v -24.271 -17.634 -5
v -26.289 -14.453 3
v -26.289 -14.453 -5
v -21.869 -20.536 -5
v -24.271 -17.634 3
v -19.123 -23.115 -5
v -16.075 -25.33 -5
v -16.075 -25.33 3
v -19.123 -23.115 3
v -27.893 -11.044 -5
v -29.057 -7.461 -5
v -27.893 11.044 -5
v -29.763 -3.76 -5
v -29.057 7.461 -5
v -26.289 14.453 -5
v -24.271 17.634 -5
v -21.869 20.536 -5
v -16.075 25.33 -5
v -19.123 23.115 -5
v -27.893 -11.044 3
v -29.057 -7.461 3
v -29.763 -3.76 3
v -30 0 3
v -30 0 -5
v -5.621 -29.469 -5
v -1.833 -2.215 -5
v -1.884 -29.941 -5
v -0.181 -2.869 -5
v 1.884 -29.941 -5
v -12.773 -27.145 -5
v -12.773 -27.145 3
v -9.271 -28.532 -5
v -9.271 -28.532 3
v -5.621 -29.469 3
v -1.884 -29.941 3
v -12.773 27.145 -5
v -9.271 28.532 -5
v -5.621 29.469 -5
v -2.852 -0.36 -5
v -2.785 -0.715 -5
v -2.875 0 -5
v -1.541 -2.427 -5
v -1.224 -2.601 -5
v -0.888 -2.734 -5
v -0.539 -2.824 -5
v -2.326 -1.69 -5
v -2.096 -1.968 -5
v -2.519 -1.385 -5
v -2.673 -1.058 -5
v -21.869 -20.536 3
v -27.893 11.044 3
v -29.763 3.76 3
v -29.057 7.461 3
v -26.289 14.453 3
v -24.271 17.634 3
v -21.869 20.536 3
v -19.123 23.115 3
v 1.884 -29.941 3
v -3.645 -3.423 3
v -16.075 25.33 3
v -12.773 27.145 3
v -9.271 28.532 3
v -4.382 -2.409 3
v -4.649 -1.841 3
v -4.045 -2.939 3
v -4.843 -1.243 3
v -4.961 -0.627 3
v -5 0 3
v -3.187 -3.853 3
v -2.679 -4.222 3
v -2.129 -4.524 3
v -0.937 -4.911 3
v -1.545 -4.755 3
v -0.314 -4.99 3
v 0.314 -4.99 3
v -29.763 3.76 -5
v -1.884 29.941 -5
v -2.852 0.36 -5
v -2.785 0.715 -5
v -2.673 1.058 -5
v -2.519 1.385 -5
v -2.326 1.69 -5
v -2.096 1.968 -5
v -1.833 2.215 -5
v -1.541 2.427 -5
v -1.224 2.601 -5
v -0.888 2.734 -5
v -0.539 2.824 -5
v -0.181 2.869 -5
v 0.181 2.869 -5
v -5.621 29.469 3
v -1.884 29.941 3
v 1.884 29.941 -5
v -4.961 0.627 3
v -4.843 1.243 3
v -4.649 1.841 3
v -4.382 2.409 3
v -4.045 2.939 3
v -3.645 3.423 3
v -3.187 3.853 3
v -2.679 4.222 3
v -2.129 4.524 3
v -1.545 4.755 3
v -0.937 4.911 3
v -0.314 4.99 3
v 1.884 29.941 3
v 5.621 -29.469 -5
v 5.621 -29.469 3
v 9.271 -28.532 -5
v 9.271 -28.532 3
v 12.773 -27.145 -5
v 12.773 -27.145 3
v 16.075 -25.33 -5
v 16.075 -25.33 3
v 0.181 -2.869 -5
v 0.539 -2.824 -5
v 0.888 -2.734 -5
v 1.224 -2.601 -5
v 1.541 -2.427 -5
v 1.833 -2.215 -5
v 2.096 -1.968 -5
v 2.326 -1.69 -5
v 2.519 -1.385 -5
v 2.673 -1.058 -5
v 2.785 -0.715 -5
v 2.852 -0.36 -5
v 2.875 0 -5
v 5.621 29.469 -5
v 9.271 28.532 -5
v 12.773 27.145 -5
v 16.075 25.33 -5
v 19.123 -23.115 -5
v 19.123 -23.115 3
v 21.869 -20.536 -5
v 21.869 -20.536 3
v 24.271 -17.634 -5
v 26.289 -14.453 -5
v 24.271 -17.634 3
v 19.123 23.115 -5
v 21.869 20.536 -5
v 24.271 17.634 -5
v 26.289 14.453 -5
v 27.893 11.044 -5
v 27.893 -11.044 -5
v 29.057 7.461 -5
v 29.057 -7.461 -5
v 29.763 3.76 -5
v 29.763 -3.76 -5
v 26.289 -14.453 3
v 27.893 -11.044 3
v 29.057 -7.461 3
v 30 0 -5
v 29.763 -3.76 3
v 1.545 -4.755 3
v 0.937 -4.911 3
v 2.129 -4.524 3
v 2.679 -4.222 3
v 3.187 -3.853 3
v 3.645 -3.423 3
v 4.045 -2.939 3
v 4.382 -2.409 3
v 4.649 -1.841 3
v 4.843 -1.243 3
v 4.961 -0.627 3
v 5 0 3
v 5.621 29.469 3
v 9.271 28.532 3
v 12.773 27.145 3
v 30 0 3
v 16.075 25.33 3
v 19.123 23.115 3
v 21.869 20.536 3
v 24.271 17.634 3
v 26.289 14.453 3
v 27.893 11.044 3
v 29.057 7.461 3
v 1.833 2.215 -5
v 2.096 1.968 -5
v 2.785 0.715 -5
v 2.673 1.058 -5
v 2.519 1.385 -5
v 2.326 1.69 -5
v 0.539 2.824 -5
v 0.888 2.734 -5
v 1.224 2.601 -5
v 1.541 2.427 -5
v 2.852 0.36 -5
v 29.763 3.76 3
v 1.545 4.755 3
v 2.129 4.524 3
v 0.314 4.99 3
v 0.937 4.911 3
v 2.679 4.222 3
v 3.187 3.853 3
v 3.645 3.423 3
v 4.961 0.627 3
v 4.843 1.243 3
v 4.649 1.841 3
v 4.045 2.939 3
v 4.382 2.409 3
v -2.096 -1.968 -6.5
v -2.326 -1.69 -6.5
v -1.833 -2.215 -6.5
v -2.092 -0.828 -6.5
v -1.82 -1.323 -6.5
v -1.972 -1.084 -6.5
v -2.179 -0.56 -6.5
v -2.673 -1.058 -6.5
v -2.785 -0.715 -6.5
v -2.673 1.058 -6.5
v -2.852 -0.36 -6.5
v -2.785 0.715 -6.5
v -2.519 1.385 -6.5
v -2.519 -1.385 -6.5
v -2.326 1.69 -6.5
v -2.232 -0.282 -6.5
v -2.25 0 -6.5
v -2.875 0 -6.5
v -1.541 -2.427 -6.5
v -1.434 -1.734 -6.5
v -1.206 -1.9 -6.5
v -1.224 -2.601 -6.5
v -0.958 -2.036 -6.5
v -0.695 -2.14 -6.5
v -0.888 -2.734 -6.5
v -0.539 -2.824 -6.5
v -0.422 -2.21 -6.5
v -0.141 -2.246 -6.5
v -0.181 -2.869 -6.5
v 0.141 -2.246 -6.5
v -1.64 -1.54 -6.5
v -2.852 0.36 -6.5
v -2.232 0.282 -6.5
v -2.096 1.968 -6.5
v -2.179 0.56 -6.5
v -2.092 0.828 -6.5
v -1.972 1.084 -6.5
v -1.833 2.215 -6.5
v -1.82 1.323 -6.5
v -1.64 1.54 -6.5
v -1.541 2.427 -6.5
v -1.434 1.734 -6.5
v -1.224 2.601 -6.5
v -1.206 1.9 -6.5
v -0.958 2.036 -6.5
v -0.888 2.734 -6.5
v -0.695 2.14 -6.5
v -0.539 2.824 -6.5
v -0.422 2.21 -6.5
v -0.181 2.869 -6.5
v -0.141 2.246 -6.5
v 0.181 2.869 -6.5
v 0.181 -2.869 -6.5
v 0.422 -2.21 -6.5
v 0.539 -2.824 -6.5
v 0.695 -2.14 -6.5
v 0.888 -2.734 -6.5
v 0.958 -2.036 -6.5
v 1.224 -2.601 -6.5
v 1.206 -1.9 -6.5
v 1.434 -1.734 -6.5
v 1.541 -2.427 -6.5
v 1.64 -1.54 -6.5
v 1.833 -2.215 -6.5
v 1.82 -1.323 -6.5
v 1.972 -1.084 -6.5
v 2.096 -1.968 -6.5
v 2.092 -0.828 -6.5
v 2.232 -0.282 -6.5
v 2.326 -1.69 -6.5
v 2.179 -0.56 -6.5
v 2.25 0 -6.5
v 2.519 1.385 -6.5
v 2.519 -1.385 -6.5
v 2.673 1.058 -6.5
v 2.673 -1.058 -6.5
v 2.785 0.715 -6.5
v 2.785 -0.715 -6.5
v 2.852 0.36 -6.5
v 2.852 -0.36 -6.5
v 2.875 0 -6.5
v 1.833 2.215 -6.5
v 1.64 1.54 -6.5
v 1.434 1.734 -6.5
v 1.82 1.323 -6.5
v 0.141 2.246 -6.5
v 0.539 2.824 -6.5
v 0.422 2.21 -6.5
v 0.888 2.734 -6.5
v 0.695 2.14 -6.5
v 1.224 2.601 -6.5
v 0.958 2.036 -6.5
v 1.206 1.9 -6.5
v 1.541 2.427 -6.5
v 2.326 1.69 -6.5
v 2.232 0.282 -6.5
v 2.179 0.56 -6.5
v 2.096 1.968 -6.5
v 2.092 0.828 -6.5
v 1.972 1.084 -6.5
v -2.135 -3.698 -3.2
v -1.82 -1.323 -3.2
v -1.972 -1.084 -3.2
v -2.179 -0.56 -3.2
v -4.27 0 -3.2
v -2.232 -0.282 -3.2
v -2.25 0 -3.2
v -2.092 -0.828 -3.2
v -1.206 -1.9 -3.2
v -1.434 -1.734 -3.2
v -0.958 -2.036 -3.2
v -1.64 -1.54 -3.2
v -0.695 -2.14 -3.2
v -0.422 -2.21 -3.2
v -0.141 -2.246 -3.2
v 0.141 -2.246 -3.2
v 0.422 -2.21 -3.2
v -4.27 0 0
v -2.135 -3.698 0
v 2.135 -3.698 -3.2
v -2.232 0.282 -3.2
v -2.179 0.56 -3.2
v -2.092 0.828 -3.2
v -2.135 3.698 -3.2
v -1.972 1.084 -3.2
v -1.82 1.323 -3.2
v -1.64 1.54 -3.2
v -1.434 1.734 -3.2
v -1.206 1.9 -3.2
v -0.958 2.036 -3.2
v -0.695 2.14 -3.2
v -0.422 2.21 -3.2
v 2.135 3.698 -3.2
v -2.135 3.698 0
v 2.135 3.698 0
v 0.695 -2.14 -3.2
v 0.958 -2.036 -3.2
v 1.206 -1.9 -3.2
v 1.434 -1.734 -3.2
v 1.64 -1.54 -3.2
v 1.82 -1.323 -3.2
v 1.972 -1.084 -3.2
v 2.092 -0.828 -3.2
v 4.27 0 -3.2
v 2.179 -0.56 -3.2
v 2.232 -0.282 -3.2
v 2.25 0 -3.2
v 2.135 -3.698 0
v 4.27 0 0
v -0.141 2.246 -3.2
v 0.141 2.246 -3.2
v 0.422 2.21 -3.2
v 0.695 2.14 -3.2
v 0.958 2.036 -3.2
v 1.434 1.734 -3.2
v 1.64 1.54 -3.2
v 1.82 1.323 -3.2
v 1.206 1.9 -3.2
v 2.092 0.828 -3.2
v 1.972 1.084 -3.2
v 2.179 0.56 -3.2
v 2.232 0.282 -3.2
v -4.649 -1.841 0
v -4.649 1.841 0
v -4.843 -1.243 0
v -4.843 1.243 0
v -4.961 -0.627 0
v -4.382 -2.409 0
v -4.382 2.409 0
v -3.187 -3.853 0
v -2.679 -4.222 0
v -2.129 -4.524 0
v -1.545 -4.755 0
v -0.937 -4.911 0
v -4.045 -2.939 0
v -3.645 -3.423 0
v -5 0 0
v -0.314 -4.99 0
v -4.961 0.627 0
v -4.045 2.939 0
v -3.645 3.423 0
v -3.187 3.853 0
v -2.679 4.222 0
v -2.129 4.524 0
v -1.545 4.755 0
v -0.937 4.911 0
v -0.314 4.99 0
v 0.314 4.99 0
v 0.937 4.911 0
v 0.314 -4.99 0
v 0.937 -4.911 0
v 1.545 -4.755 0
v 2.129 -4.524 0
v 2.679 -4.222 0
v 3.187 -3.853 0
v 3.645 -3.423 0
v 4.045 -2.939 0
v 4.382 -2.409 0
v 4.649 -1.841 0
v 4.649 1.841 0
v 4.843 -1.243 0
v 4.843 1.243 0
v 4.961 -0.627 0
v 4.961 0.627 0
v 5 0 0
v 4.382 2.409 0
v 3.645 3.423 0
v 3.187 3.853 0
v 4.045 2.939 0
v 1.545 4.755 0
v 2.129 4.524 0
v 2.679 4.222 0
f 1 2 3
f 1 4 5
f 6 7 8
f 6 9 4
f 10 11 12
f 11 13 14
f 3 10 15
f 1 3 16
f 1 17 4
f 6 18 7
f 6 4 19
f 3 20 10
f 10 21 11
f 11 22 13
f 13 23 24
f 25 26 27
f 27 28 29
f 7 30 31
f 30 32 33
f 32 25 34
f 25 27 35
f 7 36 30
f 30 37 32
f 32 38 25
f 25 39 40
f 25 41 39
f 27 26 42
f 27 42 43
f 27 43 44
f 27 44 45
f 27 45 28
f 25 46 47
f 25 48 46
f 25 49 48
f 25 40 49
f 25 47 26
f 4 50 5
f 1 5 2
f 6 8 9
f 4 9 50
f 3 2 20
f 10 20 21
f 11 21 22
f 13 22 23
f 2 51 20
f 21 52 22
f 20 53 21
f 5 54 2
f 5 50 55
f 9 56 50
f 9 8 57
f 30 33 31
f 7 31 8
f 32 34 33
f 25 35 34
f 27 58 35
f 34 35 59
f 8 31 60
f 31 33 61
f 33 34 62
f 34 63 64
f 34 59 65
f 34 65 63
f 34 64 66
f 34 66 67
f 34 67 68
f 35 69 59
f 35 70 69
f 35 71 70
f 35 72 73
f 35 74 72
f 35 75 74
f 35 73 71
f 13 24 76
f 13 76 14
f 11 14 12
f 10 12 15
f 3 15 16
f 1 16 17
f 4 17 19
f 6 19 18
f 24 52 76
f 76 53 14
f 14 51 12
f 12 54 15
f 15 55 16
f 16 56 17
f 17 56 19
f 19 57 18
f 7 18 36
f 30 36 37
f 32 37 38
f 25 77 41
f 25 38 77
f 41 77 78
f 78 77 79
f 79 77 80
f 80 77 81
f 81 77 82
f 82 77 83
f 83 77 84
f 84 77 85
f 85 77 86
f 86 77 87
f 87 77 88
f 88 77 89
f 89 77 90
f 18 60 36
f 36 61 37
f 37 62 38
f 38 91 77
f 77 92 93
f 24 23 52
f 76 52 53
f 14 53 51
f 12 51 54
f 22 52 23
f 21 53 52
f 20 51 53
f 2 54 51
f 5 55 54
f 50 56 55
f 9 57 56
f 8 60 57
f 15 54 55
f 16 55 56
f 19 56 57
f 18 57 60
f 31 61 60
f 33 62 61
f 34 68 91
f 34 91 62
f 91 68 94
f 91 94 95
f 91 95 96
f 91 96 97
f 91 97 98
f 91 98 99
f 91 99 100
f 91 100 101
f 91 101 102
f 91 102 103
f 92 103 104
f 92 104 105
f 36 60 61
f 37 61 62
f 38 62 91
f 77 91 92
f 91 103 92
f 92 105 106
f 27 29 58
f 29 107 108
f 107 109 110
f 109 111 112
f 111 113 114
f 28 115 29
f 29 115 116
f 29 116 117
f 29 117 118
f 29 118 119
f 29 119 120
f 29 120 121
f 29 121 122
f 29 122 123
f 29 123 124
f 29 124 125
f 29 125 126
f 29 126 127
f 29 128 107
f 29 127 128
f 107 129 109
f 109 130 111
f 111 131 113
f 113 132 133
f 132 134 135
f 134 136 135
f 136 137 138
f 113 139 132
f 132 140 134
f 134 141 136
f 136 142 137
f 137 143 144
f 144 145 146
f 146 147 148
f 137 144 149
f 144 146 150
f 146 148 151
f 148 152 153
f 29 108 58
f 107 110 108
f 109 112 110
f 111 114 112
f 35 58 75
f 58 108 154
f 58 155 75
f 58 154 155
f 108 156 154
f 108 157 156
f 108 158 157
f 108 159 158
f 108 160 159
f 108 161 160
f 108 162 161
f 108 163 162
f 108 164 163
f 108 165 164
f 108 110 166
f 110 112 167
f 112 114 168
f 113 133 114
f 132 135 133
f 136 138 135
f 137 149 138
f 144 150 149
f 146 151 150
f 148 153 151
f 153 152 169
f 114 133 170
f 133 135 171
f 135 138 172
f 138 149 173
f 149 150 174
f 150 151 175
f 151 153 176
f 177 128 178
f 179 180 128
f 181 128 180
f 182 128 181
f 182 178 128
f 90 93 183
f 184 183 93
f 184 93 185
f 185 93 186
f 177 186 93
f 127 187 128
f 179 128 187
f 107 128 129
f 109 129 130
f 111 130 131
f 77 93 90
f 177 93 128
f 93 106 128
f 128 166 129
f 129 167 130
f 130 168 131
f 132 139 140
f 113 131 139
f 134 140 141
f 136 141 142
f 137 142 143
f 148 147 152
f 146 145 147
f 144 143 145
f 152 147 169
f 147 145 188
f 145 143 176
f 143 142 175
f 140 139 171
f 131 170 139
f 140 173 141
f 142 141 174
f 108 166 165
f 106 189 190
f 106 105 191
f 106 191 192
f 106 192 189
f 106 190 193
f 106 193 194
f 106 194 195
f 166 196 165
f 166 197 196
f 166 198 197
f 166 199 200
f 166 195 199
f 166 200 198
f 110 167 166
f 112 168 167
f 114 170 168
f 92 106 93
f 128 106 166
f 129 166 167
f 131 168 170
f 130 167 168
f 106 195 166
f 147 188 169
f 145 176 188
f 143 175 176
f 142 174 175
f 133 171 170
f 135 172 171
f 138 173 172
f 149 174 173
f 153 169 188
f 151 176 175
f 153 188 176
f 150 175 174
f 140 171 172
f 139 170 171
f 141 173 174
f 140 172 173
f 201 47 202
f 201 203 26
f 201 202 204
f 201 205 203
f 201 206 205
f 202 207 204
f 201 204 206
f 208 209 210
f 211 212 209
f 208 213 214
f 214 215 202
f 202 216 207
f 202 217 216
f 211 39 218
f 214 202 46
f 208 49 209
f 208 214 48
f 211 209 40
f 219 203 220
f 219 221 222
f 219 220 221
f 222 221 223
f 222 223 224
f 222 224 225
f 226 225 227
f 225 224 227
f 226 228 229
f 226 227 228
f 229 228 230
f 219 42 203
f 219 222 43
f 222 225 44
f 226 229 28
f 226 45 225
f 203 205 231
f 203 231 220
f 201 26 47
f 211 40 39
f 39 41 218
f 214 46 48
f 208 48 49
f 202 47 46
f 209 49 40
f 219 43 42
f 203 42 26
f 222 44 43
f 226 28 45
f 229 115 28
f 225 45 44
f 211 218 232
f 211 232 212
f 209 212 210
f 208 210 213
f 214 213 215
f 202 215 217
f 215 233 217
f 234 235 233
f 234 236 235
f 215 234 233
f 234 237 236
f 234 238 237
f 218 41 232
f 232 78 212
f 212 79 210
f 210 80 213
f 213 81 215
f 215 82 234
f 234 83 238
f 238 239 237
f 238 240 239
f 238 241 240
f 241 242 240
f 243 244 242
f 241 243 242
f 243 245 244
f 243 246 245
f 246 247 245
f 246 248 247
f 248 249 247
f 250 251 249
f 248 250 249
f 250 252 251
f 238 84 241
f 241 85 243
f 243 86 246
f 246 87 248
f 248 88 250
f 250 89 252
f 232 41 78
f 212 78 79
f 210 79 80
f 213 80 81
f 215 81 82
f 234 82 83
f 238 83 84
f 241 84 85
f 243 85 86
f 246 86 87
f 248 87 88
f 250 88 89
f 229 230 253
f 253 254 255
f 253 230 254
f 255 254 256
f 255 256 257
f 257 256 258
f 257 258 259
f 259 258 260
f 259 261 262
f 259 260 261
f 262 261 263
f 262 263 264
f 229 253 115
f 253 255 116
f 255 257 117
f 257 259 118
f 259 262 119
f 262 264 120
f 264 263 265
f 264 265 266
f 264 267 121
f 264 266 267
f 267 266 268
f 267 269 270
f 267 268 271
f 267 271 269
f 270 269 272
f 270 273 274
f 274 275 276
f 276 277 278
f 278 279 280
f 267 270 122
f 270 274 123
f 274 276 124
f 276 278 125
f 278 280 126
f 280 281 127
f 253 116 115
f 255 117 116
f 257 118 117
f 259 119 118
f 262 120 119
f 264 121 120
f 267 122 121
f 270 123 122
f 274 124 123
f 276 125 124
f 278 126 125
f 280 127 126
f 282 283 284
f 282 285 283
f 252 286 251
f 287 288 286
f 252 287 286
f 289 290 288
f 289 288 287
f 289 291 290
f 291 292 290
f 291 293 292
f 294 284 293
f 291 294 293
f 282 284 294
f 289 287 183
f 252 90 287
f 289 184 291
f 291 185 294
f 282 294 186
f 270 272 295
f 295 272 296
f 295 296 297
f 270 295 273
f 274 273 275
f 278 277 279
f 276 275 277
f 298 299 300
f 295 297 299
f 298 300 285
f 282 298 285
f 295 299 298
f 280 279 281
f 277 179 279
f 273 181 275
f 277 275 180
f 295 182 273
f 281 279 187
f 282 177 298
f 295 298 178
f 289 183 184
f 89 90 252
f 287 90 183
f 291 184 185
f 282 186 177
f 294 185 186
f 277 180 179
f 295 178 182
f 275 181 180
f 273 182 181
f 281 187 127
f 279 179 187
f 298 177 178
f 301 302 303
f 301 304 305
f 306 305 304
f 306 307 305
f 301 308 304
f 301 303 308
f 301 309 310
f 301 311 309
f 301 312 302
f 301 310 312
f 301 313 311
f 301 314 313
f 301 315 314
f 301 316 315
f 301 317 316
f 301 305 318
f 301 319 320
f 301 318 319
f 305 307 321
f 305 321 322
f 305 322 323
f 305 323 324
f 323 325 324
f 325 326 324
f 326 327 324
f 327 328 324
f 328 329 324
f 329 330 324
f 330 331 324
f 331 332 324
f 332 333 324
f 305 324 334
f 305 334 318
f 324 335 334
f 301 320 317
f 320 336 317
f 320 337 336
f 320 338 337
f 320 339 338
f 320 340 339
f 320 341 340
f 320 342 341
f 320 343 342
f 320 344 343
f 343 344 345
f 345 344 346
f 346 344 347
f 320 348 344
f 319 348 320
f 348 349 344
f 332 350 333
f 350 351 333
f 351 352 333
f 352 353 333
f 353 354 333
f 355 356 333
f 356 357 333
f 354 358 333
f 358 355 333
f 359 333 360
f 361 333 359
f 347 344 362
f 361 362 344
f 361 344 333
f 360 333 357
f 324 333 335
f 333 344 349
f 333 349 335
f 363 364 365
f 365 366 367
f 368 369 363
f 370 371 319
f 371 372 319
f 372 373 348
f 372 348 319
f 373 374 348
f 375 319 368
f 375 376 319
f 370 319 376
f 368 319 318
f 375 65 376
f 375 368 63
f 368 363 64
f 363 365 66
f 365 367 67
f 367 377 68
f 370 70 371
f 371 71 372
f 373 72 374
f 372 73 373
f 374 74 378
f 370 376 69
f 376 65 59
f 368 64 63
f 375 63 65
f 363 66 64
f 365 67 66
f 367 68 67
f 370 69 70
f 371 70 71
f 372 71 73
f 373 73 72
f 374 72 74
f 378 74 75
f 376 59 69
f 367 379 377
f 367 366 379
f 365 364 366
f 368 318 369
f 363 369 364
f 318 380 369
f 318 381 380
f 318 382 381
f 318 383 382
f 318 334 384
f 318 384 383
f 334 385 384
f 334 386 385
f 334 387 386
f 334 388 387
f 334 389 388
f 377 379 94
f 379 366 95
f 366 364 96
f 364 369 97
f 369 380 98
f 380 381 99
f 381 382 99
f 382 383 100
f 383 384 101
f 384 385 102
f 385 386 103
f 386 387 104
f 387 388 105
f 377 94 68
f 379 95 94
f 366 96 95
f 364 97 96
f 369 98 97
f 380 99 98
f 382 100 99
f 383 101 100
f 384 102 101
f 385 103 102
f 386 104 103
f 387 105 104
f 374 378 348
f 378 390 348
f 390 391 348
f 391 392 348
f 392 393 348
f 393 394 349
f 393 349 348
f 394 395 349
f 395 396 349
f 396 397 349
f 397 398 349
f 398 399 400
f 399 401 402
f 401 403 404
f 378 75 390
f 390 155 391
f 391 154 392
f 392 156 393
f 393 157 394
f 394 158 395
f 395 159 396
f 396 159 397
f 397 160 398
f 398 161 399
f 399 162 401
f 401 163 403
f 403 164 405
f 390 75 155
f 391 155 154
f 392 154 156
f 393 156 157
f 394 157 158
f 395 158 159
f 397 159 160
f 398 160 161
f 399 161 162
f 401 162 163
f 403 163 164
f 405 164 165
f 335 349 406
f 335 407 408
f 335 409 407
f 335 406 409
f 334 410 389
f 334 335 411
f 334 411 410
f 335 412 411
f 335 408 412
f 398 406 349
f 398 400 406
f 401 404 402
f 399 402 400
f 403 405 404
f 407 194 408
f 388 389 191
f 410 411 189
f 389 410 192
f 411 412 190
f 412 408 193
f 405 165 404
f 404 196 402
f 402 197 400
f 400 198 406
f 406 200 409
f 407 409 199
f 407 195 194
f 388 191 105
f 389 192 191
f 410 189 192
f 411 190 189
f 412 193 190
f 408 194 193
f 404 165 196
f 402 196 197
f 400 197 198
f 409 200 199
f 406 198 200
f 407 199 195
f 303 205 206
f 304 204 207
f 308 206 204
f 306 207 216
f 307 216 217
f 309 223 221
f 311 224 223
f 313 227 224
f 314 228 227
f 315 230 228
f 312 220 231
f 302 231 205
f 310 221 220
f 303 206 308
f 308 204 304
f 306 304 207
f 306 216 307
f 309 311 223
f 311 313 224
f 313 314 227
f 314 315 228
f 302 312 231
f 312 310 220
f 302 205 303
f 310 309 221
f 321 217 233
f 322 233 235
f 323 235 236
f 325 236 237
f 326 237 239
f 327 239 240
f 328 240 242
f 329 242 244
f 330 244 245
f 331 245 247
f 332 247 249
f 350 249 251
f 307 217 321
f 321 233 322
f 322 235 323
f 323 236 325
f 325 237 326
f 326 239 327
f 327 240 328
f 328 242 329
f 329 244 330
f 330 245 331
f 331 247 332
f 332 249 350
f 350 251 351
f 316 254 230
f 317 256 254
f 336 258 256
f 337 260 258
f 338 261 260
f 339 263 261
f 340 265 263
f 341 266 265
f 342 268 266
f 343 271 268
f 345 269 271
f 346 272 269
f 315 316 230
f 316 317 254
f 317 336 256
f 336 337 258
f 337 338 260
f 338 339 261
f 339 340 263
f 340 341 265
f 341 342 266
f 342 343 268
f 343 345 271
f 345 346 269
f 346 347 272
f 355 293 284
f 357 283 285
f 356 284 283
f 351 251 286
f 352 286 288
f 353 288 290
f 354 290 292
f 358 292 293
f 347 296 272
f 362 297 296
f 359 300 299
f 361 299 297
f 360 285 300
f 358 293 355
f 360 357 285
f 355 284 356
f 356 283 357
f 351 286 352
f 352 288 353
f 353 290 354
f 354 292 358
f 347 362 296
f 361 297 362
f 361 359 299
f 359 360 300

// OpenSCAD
$fn = 50;

difference() {
	union() {
		translate(v = [0, 0, -5.0]) {
			cylinder(h = 8.0, r = 30.0);
		}
		#translate(v = [0, 0, -6.5]) {
			cylinder(h = 6.5, r = 2.875);
		}
	}
	union() {
		translate(v = [0, 0, 0]) {
			rotate(a = [0, 0, 0]) {
				difference() {
					union() {
						translate(v = [0, 0, -3.2]) {
							linear_extrude(height = 3.2) {
								polygon(points = [[4.2698, 0.0], [2.1349000000000005, 3.697755269078796], [-2.134899999999999, 3.6977552690787965], [-4.2698, 5.228996902999369e-16], [-2.134900000000002, -3.6977552690787956], [2.1348999999999974, -3.697755269078798]]);
							}
						}
					}
					union();
				}
			}
		}
		#cylinder(h = 3, r = 5.0);
		#translate(v = [0, 0, -100.0]) {
			cylinder(h = 200, r = 2.25);
		}
	}
}
